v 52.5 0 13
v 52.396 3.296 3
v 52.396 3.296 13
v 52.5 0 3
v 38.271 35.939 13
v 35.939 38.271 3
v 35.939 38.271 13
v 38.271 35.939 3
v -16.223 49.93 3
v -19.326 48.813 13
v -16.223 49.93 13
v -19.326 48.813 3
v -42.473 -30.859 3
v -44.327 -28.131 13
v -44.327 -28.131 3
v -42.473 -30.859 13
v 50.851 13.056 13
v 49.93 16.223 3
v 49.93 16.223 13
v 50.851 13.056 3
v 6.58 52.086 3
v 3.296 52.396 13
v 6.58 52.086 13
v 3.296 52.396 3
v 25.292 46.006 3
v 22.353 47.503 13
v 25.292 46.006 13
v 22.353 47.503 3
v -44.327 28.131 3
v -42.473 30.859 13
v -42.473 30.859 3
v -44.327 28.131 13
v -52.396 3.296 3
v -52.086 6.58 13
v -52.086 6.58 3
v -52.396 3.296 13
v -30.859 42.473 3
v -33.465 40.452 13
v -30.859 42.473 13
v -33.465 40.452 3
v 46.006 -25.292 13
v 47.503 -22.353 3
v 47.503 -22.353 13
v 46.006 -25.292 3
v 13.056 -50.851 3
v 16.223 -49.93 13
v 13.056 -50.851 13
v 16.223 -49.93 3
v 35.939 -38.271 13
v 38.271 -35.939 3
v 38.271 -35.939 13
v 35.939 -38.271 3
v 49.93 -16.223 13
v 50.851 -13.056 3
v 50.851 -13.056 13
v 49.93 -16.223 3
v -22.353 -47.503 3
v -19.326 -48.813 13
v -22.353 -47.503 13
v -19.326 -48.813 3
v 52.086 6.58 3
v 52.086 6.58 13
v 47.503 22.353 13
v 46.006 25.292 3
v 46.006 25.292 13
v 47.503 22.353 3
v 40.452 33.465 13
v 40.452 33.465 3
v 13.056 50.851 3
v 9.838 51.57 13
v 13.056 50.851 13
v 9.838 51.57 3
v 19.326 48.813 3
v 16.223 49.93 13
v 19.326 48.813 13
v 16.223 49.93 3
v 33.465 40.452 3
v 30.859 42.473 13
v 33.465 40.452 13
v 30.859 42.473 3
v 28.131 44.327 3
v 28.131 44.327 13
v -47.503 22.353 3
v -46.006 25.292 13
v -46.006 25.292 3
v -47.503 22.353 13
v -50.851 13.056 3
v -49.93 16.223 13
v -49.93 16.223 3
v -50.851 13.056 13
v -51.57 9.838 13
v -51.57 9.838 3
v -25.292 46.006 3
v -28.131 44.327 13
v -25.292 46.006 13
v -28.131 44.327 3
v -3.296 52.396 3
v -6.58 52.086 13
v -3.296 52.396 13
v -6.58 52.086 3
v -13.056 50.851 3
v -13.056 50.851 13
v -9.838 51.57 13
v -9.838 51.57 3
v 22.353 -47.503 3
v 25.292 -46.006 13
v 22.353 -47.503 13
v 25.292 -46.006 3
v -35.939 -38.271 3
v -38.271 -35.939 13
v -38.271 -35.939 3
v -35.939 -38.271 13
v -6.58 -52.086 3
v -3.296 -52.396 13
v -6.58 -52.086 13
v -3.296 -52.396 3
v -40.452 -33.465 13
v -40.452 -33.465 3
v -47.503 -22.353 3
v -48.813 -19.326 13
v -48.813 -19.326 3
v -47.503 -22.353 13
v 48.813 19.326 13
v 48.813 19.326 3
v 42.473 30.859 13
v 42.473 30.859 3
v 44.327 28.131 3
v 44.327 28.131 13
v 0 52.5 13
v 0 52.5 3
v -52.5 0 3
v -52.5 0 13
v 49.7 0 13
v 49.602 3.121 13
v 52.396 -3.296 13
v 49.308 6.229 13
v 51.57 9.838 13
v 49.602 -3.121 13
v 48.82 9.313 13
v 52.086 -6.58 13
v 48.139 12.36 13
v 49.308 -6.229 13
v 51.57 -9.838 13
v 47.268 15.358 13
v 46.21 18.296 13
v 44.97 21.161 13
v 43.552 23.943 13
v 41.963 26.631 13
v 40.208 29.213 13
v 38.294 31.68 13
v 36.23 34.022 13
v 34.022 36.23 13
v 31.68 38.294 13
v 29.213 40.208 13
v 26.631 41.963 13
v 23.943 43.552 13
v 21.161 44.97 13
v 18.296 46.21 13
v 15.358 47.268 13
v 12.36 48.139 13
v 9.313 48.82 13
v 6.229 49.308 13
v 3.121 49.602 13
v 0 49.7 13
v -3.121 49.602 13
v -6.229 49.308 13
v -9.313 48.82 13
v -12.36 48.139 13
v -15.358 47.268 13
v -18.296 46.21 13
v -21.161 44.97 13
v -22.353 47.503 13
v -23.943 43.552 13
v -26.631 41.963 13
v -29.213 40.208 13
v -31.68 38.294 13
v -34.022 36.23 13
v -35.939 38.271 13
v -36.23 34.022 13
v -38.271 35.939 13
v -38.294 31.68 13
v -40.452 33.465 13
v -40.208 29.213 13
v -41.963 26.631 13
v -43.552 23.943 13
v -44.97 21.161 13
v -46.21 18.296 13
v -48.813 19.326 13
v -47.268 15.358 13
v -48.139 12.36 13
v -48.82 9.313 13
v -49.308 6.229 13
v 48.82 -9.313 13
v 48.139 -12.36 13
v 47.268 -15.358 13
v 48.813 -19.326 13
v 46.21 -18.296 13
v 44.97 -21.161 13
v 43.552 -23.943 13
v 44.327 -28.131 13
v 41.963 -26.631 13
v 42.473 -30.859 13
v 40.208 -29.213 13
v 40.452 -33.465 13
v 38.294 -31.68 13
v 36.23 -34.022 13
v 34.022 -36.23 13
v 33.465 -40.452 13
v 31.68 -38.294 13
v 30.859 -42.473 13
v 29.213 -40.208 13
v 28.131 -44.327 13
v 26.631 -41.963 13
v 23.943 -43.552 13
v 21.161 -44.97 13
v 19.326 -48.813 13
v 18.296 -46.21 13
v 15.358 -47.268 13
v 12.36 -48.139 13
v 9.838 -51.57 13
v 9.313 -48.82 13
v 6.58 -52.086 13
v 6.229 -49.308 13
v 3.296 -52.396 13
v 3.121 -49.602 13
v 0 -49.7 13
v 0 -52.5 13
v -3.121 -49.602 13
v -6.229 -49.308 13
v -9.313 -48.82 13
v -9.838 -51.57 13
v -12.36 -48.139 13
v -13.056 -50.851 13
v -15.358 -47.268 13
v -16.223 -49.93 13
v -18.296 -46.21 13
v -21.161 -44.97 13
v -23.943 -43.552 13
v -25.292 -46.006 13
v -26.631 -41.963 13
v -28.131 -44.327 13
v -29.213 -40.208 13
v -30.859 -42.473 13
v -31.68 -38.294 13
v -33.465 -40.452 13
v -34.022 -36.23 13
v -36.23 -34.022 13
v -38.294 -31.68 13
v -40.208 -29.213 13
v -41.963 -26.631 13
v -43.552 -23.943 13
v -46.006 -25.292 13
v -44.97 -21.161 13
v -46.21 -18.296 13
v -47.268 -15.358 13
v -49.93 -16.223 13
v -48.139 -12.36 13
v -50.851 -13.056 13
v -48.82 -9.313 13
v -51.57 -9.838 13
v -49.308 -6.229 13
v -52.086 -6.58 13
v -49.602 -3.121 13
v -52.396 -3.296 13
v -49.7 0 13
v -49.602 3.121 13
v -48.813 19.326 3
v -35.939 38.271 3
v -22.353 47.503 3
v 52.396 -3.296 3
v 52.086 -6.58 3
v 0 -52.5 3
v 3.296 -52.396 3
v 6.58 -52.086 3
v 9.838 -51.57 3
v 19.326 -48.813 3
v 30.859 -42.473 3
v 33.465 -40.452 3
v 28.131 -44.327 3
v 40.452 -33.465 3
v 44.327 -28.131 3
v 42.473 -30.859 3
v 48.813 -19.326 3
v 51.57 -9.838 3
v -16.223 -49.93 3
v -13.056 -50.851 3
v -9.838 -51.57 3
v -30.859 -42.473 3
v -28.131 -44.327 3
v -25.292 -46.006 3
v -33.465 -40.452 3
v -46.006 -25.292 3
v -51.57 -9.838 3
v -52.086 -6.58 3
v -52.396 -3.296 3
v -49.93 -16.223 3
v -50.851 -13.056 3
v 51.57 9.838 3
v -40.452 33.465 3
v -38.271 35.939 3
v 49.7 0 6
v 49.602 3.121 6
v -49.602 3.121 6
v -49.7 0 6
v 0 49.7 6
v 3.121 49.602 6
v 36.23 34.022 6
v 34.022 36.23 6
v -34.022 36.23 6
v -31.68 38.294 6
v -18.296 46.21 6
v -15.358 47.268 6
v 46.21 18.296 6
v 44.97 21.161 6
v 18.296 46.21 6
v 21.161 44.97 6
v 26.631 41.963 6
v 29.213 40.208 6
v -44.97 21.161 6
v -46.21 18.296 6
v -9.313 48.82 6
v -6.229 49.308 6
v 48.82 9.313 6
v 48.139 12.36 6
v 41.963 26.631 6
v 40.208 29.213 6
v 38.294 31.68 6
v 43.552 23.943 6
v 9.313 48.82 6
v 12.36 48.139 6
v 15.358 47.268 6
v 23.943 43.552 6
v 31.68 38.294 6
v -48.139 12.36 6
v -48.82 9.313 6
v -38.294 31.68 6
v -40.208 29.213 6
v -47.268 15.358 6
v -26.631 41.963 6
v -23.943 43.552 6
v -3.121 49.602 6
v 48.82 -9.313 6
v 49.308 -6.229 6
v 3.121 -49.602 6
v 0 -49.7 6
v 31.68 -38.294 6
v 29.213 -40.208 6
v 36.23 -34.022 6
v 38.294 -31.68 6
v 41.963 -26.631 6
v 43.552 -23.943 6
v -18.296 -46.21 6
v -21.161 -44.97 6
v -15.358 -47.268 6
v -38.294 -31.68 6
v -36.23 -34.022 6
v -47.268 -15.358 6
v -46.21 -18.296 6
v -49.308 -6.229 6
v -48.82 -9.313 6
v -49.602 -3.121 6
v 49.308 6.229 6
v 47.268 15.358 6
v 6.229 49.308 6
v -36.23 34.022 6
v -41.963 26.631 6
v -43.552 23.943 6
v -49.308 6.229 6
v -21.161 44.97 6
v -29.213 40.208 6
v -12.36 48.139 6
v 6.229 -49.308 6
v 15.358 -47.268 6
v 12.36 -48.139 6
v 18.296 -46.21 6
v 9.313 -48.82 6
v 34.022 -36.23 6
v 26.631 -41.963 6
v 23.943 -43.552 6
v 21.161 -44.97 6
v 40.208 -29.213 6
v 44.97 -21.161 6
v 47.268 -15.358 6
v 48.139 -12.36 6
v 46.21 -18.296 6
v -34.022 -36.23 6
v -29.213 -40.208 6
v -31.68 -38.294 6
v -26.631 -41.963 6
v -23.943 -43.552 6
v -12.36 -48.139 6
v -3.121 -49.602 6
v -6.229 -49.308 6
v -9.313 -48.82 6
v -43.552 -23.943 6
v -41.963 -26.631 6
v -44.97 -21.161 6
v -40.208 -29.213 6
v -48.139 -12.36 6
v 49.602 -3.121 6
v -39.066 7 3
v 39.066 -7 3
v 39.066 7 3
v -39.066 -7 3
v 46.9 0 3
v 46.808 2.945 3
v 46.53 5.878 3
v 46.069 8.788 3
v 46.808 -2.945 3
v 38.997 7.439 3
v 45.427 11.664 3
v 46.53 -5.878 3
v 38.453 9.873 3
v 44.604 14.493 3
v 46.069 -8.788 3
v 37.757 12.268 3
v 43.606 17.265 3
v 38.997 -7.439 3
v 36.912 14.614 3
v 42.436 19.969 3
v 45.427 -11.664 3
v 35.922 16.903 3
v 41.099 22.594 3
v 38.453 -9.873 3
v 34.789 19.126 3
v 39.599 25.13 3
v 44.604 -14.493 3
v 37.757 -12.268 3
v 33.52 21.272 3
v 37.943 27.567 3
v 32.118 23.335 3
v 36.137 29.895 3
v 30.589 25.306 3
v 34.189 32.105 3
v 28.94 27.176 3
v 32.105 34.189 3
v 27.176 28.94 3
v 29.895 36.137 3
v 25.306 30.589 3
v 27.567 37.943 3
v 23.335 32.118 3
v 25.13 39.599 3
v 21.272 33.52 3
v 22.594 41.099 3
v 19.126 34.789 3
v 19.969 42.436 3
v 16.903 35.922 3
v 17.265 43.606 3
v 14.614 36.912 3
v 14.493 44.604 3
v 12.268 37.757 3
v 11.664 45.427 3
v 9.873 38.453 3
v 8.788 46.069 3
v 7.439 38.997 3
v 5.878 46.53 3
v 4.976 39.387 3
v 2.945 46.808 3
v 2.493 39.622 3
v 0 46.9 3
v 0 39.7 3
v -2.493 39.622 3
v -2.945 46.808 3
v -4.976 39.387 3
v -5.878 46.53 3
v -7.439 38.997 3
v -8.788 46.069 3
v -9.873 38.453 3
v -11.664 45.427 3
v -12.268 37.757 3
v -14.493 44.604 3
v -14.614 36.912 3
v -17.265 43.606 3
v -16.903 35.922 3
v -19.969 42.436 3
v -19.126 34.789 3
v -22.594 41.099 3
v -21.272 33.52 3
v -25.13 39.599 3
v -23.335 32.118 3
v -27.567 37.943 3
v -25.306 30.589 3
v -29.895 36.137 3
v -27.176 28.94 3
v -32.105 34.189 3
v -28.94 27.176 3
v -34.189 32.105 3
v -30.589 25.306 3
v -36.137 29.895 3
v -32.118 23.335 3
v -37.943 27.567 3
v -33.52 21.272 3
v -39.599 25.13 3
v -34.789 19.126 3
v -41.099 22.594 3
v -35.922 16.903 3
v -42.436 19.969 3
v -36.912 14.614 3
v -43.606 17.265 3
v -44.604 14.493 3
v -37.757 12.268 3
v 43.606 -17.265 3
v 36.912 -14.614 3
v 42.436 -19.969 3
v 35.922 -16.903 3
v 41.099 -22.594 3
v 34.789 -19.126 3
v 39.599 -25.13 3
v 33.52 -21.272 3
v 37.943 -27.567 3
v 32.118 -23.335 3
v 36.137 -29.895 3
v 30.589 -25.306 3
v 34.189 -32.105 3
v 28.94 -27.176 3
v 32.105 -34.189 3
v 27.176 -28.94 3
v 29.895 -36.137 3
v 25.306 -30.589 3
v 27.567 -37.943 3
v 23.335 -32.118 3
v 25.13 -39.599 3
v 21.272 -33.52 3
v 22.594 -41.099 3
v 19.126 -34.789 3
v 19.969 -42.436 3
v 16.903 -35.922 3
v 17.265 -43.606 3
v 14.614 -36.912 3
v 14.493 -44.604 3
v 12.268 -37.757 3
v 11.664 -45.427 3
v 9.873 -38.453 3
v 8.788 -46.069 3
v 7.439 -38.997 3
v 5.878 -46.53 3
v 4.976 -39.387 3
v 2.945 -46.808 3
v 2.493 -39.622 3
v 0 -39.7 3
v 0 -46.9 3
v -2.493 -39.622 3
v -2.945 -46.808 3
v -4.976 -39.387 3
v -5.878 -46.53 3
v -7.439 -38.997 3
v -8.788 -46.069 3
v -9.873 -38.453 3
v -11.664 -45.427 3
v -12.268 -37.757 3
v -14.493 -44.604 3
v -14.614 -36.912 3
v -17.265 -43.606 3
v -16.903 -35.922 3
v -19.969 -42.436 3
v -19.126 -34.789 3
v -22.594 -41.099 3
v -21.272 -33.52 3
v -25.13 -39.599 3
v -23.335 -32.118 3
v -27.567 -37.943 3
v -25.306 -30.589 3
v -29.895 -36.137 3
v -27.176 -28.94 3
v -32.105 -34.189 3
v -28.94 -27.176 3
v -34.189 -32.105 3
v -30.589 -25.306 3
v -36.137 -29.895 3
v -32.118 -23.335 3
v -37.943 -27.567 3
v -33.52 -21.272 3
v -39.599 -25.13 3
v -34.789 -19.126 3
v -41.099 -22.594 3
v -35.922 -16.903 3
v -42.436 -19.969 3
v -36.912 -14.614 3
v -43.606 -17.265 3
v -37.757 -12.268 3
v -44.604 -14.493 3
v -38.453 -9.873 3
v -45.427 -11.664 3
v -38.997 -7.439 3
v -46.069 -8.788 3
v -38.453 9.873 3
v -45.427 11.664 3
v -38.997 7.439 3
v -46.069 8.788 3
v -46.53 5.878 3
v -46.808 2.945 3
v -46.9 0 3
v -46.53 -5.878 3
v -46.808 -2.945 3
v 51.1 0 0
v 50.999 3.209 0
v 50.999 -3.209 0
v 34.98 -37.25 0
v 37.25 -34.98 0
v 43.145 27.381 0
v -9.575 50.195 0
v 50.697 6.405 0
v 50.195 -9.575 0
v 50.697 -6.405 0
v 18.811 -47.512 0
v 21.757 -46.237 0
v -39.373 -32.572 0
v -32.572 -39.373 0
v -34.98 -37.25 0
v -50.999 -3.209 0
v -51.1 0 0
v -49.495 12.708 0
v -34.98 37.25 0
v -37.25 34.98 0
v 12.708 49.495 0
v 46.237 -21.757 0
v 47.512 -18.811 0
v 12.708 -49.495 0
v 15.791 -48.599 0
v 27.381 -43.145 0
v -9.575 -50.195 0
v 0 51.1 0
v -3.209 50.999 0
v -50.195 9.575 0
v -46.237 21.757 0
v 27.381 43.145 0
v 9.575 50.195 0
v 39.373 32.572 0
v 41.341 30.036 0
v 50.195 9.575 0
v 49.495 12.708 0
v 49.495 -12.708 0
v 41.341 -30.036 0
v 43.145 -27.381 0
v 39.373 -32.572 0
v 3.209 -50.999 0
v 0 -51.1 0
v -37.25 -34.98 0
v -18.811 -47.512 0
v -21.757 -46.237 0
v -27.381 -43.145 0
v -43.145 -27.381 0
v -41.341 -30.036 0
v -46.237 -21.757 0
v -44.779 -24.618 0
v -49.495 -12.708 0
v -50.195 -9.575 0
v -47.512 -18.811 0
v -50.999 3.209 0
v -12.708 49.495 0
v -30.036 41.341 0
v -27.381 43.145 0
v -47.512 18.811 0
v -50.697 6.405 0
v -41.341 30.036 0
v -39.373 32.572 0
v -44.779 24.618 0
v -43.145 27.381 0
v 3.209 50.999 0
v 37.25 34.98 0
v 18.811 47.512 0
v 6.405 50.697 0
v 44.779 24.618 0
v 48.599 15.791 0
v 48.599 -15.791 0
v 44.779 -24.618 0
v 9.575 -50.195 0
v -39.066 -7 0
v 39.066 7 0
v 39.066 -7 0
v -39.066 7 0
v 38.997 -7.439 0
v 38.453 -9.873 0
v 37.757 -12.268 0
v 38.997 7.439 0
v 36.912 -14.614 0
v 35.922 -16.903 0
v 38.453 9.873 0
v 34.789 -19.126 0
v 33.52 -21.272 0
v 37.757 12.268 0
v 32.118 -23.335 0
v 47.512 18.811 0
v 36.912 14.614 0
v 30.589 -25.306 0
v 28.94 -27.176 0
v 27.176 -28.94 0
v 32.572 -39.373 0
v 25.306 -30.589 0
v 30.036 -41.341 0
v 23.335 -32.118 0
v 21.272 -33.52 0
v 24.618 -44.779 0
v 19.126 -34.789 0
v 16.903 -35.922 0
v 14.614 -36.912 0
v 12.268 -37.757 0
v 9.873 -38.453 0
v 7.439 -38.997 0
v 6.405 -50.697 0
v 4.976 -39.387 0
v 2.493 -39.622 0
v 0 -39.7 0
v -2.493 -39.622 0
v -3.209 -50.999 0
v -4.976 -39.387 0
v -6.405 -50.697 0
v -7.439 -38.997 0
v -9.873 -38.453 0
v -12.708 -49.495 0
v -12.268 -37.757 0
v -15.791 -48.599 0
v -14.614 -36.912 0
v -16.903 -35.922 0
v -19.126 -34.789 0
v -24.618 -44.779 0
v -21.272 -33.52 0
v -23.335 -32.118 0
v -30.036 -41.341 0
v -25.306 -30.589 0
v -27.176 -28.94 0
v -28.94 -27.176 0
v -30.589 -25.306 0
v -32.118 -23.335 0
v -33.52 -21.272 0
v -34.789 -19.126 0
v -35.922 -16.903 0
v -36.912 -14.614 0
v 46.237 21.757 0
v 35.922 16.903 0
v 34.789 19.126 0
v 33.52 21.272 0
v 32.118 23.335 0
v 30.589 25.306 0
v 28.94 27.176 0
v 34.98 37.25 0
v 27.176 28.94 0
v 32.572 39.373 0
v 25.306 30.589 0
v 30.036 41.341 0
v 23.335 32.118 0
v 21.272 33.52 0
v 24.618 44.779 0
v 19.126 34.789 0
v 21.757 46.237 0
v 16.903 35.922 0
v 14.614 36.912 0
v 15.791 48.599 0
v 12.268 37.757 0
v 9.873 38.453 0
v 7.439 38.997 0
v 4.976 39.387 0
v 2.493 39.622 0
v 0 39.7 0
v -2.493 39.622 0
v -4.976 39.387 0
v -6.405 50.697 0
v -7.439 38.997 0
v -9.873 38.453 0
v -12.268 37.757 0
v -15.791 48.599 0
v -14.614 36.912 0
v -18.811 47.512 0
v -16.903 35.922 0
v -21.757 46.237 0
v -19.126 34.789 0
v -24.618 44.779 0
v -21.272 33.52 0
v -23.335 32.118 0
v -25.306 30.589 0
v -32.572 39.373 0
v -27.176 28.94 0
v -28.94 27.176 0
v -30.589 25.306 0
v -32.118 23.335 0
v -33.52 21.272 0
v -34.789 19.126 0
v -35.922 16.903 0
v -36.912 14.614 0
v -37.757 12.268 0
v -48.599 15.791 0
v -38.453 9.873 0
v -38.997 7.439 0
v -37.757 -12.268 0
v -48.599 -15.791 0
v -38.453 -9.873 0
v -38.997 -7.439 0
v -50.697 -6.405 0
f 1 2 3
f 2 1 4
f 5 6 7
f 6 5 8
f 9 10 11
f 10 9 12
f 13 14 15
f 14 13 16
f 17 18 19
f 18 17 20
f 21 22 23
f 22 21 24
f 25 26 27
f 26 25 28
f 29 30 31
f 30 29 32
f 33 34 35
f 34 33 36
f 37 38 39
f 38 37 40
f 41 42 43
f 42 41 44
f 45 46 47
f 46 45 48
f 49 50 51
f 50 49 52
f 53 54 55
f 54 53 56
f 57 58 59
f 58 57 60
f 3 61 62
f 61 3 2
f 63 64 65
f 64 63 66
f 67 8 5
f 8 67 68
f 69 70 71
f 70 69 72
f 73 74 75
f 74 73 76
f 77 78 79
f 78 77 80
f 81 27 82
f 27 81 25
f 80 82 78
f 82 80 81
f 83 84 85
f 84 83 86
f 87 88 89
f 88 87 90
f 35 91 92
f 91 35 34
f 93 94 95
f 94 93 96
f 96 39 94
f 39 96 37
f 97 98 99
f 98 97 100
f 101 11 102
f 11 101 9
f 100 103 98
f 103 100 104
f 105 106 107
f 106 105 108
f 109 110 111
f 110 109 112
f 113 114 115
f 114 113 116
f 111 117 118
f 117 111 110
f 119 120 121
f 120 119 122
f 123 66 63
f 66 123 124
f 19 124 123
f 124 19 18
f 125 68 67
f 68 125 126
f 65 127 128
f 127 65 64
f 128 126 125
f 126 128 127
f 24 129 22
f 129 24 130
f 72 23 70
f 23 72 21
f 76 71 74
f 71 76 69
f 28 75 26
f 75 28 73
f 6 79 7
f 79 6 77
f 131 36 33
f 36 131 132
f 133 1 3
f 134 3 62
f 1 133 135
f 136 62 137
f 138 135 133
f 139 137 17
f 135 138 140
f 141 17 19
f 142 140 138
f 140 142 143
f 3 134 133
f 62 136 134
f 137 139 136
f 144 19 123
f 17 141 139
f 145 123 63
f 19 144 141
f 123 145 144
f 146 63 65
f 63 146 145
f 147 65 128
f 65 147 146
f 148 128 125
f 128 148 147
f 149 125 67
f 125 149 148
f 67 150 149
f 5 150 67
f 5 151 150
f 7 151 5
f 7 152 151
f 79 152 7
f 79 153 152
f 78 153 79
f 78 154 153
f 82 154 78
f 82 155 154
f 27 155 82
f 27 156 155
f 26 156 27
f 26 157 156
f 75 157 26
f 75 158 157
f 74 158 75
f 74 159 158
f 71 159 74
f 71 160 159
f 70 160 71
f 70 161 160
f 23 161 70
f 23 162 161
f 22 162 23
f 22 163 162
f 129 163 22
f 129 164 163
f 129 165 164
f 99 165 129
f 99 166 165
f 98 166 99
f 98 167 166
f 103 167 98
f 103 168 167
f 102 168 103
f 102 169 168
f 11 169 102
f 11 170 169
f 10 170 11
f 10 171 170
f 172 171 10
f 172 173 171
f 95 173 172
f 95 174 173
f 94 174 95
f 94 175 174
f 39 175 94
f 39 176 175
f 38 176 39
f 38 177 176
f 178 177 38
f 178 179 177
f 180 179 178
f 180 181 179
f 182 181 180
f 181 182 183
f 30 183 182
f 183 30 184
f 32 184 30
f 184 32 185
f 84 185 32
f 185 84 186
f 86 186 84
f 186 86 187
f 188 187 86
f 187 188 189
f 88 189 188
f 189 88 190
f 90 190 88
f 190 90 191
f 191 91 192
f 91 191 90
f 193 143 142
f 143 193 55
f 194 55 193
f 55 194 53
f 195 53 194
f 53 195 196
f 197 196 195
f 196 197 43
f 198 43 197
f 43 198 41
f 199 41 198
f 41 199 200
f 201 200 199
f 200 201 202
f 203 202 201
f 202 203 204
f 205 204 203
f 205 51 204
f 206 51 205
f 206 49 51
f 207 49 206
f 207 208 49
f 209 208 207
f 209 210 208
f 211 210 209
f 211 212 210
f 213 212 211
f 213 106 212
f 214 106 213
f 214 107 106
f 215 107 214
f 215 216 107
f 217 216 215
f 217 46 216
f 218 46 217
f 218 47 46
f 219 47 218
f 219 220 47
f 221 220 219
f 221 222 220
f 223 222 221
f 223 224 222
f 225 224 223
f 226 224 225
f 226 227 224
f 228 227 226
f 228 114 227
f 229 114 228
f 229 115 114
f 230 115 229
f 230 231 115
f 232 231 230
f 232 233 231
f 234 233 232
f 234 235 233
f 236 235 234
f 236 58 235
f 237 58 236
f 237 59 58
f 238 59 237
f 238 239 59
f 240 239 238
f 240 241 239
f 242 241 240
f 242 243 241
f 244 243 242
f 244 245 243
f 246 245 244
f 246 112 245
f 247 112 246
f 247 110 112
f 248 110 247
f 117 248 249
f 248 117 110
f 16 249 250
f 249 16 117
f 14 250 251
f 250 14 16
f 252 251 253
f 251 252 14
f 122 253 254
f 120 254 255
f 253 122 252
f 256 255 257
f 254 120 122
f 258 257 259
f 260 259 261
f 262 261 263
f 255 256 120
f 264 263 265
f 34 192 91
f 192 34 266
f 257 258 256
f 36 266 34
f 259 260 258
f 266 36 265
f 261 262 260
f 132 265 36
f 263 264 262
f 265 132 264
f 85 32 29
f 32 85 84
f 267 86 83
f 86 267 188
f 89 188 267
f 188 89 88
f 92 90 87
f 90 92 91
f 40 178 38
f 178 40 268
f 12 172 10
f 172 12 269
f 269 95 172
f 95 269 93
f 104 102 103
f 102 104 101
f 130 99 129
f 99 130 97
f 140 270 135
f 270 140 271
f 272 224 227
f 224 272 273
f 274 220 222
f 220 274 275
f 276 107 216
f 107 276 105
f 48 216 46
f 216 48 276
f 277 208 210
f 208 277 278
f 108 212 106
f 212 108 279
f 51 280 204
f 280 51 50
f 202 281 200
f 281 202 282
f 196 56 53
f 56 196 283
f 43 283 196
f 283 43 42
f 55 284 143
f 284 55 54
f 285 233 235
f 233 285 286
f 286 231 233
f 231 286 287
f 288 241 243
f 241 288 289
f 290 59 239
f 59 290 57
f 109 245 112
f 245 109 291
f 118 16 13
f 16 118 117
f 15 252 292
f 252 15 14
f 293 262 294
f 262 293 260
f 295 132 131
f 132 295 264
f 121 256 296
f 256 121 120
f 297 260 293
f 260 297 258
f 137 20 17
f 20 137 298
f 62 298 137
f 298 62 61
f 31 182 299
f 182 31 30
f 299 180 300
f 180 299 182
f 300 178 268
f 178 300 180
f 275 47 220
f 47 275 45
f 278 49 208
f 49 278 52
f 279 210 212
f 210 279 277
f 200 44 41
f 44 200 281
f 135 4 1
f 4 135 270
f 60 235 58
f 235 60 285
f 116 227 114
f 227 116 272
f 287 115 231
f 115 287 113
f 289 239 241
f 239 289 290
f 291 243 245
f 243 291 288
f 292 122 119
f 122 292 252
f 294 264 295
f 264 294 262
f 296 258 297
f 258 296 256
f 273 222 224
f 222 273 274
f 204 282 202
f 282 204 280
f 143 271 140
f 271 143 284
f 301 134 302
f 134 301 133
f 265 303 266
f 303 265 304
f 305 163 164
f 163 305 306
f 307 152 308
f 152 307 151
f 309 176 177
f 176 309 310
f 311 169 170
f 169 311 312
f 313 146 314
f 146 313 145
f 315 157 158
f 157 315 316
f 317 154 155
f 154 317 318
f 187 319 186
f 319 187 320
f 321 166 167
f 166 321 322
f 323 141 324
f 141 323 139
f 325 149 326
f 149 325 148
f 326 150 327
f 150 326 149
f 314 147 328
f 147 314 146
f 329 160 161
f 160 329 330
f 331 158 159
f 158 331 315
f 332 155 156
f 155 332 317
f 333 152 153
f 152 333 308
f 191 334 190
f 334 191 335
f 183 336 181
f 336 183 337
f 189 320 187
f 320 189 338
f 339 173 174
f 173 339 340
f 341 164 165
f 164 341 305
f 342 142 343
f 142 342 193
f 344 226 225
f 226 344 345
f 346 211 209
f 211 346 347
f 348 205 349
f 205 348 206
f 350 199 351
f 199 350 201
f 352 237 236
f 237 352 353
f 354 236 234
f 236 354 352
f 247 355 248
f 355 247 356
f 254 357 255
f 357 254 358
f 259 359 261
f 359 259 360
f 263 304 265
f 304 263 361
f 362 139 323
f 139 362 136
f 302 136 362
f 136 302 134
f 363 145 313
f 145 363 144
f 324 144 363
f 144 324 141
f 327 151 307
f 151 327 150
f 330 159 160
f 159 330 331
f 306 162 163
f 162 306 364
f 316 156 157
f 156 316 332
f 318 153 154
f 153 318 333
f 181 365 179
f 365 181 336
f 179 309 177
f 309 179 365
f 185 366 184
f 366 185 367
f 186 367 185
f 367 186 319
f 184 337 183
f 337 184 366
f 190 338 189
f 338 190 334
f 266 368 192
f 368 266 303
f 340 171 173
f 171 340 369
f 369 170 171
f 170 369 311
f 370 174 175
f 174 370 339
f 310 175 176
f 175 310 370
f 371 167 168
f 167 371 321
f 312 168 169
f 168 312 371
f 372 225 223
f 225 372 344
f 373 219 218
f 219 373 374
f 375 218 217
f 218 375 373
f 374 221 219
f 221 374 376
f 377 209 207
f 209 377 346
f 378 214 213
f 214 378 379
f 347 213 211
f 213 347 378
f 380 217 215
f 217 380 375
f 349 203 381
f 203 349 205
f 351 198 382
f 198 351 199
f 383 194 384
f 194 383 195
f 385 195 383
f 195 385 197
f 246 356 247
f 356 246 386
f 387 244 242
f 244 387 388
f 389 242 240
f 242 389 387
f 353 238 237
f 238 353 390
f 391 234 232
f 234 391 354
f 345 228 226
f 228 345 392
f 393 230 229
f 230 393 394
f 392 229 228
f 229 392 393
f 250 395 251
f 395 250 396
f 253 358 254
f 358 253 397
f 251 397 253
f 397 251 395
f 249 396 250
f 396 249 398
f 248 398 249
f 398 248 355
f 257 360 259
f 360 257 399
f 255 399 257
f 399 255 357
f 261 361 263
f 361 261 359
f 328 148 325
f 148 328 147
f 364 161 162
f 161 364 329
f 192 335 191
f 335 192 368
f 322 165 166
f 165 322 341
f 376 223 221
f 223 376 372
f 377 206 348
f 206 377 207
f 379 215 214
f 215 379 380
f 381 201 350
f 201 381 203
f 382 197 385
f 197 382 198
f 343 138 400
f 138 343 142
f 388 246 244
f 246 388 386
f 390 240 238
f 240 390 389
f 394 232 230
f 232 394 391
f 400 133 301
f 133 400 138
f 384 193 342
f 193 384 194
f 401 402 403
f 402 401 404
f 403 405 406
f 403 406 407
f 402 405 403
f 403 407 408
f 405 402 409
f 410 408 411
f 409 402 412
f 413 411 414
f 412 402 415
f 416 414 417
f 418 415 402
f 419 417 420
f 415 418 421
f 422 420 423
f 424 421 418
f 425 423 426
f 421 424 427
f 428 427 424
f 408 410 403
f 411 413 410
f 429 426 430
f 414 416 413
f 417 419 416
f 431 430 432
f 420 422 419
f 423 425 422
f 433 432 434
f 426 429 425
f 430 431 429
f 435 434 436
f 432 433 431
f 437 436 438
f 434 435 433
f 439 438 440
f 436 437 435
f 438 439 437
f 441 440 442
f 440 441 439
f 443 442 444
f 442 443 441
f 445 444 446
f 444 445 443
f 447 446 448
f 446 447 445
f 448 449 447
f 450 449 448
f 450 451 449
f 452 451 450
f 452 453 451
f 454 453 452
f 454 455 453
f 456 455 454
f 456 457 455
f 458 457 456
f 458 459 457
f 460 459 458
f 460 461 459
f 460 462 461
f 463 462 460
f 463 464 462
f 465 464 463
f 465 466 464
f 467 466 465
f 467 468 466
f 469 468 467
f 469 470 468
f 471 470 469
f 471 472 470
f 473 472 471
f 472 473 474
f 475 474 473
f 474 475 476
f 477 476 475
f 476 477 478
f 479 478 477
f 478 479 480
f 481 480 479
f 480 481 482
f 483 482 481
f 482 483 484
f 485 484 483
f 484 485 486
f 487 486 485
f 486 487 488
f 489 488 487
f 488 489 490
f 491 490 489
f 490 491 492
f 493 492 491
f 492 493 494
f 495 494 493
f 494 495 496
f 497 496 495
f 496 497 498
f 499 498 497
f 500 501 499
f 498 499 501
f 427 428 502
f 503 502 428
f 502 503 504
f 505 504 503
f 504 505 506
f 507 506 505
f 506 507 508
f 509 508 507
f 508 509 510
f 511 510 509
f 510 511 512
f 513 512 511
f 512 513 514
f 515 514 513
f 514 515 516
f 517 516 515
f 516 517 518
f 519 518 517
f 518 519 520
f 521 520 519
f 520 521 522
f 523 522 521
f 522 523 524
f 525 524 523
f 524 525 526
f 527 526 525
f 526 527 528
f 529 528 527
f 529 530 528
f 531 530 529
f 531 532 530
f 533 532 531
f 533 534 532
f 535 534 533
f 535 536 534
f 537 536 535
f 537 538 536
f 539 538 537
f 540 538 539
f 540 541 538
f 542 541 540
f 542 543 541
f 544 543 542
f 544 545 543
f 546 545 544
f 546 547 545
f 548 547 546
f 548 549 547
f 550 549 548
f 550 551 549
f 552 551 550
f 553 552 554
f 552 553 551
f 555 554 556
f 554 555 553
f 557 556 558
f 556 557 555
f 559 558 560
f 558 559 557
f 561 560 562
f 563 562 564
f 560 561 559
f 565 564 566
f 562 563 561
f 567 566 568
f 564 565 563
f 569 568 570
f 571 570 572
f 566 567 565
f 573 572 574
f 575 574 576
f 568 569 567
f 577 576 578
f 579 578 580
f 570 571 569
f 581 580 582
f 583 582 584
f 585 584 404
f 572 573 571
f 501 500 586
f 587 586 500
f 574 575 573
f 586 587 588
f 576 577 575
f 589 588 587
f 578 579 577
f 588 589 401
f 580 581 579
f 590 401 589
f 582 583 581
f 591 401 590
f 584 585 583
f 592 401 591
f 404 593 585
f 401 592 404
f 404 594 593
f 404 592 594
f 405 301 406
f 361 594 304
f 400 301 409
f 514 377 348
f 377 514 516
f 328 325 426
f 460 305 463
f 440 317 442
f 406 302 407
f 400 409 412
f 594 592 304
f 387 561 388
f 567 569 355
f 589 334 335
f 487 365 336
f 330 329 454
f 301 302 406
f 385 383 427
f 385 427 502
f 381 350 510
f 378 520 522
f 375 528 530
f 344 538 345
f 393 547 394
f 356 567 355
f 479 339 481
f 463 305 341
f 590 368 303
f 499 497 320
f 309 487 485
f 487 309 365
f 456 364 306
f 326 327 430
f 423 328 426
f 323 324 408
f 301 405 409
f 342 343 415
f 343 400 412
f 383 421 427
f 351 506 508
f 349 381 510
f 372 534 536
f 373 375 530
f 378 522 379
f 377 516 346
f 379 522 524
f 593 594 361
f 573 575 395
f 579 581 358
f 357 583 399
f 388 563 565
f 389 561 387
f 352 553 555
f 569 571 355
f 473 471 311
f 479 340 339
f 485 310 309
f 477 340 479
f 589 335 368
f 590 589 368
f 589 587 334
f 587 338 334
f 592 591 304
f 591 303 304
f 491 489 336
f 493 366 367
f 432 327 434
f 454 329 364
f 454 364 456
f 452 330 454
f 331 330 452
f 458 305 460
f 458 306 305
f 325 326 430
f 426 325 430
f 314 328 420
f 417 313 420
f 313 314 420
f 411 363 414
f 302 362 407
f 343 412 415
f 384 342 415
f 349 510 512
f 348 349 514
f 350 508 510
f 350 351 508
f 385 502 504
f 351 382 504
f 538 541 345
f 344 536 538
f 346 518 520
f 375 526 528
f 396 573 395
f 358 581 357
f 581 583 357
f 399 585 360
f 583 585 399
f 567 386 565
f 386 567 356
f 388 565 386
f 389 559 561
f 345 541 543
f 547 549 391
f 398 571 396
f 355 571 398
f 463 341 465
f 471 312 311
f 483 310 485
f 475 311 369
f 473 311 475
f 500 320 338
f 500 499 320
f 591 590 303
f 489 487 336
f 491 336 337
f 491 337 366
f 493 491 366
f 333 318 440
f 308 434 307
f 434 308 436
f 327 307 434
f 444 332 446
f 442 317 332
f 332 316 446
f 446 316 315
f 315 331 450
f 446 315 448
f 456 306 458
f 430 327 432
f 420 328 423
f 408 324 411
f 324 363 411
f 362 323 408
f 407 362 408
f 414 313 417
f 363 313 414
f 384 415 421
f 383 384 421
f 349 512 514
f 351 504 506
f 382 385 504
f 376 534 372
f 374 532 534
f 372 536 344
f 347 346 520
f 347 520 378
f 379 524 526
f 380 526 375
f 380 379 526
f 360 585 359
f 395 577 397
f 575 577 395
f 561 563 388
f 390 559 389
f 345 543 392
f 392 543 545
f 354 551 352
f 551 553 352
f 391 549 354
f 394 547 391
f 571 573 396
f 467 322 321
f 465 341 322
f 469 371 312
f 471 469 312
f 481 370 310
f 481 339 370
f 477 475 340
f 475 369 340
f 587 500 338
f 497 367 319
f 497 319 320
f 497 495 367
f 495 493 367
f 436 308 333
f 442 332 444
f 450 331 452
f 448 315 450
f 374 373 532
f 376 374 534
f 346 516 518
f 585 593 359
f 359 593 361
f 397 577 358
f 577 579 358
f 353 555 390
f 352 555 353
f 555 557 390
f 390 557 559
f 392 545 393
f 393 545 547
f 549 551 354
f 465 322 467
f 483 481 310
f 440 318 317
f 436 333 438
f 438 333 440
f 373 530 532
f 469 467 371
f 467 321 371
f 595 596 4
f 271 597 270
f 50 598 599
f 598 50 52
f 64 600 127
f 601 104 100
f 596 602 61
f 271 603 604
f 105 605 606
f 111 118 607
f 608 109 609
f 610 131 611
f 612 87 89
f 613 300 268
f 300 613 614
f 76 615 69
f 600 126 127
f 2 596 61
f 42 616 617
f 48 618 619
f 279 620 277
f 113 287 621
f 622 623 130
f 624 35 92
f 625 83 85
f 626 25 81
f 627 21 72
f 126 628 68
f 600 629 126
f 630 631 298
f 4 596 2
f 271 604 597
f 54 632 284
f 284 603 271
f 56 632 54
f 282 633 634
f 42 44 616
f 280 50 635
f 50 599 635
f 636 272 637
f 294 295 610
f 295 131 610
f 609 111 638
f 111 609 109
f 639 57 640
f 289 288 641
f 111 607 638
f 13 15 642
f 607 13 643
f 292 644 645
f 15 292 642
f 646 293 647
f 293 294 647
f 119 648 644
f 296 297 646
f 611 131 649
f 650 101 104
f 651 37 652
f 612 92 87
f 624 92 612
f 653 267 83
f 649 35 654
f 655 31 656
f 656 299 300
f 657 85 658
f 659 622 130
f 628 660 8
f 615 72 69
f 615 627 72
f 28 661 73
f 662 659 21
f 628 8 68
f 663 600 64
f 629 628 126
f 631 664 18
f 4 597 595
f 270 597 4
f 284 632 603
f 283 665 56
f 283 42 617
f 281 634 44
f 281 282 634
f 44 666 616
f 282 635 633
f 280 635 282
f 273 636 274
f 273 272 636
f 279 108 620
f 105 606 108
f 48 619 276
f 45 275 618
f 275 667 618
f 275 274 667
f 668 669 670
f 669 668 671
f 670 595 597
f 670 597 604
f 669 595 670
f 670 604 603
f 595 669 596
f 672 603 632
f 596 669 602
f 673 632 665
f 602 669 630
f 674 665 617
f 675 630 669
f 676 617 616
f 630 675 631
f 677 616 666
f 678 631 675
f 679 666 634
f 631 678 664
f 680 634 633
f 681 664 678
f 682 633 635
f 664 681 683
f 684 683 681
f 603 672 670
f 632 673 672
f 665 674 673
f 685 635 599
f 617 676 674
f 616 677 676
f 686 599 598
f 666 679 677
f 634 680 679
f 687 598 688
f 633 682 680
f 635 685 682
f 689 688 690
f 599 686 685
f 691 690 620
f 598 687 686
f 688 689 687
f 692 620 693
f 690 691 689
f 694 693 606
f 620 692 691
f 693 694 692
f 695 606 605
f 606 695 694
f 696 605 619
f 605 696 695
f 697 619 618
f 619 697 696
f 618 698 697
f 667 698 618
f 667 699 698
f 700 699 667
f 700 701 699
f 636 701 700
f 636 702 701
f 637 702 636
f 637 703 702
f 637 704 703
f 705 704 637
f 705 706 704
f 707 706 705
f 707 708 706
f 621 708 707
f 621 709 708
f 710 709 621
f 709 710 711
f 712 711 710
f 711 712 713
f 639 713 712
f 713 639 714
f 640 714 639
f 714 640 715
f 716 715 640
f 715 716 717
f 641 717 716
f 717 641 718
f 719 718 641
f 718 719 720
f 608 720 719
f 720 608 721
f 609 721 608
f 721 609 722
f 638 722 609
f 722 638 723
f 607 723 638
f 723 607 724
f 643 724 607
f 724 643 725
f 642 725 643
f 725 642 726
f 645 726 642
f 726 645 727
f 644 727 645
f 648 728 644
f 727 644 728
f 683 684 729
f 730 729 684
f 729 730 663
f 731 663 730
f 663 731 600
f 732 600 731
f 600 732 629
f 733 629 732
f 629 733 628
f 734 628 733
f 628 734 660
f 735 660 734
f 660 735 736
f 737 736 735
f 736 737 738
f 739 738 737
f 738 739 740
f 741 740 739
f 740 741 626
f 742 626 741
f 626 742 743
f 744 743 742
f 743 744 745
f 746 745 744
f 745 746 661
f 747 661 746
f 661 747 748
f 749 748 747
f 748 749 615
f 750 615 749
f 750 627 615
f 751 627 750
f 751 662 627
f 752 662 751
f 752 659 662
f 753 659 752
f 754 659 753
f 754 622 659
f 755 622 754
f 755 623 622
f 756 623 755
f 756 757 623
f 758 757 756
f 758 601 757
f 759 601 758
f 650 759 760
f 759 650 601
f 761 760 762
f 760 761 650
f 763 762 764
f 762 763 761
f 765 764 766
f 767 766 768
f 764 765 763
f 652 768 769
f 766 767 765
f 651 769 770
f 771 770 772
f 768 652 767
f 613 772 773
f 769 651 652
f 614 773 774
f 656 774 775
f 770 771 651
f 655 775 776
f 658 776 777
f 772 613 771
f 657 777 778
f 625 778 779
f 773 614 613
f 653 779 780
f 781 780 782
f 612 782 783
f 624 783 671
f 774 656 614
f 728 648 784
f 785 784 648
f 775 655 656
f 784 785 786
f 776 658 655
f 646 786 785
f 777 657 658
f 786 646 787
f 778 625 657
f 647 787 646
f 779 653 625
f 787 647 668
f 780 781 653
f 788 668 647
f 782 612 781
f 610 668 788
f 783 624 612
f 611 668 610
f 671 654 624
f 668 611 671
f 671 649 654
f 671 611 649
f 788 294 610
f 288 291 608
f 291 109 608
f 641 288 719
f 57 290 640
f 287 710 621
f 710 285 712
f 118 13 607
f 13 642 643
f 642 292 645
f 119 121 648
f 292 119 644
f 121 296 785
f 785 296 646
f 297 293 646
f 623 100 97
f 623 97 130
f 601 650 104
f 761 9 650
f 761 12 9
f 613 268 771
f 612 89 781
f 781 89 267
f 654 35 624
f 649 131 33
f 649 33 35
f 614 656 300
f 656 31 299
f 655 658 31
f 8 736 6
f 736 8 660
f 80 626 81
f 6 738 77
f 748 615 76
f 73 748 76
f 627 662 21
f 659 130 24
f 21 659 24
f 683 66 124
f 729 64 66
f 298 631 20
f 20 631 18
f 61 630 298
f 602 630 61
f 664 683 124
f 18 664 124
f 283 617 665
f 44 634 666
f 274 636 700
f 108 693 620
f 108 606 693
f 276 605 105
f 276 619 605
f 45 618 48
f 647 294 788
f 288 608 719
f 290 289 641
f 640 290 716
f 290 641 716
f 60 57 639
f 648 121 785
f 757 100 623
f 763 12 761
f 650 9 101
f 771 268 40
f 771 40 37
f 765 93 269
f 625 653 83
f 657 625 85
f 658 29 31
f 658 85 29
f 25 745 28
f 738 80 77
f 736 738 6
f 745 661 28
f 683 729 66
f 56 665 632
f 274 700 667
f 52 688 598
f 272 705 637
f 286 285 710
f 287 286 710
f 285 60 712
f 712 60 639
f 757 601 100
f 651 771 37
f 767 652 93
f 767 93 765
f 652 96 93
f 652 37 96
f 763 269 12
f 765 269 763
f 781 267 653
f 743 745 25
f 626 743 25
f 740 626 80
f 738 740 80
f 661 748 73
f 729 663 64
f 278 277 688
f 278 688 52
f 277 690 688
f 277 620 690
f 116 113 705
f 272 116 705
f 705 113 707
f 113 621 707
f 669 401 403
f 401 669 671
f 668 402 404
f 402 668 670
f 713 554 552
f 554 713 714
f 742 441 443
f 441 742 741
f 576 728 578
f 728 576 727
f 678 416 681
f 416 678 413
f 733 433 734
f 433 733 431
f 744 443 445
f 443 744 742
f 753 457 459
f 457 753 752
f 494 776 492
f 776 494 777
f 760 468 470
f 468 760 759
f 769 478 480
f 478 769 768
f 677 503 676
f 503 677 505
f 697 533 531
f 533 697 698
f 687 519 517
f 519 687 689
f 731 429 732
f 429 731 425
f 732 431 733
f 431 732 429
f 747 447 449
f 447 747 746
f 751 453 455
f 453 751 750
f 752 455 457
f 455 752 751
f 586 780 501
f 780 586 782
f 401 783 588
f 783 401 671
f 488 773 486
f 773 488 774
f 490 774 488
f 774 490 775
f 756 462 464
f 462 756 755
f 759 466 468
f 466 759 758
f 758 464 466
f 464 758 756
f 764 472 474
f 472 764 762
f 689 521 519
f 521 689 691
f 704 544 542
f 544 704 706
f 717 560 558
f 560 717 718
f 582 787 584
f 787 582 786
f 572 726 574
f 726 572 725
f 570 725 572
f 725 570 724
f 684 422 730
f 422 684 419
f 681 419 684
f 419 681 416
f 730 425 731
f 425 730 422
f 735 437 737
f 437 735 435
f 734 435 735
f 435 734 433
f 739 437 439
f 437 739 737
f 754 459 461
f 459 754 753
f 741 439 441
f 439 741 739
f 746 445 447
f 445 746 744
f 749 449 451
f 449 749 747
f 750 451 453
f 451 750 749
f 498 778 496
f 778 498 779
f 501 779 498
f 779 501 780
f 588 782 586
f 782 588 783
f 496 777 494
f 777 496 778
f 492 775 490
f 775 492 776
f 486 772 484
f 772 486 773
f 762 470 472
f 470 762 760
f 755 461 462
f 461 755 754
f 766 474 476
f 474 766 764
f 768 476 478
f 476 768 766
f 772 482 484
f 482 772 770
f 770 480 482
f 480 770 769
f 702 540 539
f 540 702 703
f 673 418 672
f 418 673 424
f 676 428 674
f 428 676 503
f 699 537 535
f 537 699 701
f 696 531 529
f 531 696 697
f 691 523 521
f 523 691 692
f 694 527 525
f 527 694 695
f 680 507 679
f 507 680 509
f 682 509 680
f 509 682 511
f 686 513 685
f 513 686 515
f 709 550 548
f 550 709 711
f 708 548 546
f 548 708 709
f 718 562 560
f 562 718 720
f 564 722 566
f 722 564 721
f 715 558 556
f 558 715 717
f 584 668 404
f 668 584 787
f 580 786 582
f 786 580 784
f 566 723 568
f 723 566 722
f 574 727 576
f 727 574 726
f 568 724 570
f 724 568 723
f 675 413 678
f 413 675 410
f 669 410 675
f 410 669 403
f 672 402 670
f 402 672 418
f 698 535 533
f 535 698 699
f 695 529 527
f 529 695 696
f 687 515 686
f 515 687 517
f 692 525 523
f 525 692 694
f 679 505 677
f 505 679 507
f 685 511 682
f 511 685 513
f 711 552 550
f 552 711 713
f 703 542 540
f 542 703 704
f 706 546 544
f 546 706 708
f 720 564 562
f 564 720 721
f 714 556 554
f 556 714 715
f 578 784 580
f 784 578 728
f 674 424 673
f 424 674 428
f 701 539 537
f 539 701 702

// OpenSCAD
/* POD endbell
*/

dia_od = (105); // diameter (inside of bottle)

width_centerrim = 10;
width_centerbar = 14;


thick_bottom = 3;
thick_sides = 2.8;
height_sides = 10;
$fn = 100;

module base()
{
    render()
    {
    difference()
    {
    cylinder(h = thick_bottom,
       d = (dia_od-2*thick_sides),
       center = false);
    cylinder(h = thick_bottom,
       d = (dia_od  - 2*thick_sides - 2* width_centerrim),
       center = false);
    }
}
}

module chamfer()
{
     // Sides with chamfer at bottom edge
    difference()
     {
        cylinder(h = thick_bottom, 
           r1 = (dia_od - thick_sides)/2, 
           r2 = dia_od/2, 
           center = false);
        cylinder(h = thick_bottom, 
           d = (dia_od - 2*thick_sides), 
           center = false);
     }
 }
module ring()
{
  render()
  {
     // Sides
     translate([0,0,thick_bottom])
        difference()
        {  
           cylinder(h = height_sides, 
              d = (dia_od),
              center = false);
           cylinder(h = height_sides, 
              d = (dia_od - 2* thick_sides),
              center = false);
        }
     
    chamfer();
     
     // Inside fillet
     difference()
     {
        translate([0,0,thick_bottom])
           cylinder(h = thick_bottom,
              d = (dia_od - 2*thick_sides),
              center = false);
        translate([0,0,thick_bottom])
          cylinder(h = thick_bottom, 
              r1 = (dia_od - 4*thick_sides)/2, 
              r2 = (dia_od - 2*thick_sides)/2, 
              center = false);
     }
  }
}
module crossbar()
{
    render()
    {
       difference()
       {
          // Cross bar at base
         translate([-(dia_od - 2*thick_sides)/2,-width_centerbar/2,0])
            cube([dia_od - 2*thick_sides,width_centerbar,thick_bottom],false);    
         chamfer();
       }
    }
}

module main()
{
    base();
   ring();
   crossbar();
 
}
main();
